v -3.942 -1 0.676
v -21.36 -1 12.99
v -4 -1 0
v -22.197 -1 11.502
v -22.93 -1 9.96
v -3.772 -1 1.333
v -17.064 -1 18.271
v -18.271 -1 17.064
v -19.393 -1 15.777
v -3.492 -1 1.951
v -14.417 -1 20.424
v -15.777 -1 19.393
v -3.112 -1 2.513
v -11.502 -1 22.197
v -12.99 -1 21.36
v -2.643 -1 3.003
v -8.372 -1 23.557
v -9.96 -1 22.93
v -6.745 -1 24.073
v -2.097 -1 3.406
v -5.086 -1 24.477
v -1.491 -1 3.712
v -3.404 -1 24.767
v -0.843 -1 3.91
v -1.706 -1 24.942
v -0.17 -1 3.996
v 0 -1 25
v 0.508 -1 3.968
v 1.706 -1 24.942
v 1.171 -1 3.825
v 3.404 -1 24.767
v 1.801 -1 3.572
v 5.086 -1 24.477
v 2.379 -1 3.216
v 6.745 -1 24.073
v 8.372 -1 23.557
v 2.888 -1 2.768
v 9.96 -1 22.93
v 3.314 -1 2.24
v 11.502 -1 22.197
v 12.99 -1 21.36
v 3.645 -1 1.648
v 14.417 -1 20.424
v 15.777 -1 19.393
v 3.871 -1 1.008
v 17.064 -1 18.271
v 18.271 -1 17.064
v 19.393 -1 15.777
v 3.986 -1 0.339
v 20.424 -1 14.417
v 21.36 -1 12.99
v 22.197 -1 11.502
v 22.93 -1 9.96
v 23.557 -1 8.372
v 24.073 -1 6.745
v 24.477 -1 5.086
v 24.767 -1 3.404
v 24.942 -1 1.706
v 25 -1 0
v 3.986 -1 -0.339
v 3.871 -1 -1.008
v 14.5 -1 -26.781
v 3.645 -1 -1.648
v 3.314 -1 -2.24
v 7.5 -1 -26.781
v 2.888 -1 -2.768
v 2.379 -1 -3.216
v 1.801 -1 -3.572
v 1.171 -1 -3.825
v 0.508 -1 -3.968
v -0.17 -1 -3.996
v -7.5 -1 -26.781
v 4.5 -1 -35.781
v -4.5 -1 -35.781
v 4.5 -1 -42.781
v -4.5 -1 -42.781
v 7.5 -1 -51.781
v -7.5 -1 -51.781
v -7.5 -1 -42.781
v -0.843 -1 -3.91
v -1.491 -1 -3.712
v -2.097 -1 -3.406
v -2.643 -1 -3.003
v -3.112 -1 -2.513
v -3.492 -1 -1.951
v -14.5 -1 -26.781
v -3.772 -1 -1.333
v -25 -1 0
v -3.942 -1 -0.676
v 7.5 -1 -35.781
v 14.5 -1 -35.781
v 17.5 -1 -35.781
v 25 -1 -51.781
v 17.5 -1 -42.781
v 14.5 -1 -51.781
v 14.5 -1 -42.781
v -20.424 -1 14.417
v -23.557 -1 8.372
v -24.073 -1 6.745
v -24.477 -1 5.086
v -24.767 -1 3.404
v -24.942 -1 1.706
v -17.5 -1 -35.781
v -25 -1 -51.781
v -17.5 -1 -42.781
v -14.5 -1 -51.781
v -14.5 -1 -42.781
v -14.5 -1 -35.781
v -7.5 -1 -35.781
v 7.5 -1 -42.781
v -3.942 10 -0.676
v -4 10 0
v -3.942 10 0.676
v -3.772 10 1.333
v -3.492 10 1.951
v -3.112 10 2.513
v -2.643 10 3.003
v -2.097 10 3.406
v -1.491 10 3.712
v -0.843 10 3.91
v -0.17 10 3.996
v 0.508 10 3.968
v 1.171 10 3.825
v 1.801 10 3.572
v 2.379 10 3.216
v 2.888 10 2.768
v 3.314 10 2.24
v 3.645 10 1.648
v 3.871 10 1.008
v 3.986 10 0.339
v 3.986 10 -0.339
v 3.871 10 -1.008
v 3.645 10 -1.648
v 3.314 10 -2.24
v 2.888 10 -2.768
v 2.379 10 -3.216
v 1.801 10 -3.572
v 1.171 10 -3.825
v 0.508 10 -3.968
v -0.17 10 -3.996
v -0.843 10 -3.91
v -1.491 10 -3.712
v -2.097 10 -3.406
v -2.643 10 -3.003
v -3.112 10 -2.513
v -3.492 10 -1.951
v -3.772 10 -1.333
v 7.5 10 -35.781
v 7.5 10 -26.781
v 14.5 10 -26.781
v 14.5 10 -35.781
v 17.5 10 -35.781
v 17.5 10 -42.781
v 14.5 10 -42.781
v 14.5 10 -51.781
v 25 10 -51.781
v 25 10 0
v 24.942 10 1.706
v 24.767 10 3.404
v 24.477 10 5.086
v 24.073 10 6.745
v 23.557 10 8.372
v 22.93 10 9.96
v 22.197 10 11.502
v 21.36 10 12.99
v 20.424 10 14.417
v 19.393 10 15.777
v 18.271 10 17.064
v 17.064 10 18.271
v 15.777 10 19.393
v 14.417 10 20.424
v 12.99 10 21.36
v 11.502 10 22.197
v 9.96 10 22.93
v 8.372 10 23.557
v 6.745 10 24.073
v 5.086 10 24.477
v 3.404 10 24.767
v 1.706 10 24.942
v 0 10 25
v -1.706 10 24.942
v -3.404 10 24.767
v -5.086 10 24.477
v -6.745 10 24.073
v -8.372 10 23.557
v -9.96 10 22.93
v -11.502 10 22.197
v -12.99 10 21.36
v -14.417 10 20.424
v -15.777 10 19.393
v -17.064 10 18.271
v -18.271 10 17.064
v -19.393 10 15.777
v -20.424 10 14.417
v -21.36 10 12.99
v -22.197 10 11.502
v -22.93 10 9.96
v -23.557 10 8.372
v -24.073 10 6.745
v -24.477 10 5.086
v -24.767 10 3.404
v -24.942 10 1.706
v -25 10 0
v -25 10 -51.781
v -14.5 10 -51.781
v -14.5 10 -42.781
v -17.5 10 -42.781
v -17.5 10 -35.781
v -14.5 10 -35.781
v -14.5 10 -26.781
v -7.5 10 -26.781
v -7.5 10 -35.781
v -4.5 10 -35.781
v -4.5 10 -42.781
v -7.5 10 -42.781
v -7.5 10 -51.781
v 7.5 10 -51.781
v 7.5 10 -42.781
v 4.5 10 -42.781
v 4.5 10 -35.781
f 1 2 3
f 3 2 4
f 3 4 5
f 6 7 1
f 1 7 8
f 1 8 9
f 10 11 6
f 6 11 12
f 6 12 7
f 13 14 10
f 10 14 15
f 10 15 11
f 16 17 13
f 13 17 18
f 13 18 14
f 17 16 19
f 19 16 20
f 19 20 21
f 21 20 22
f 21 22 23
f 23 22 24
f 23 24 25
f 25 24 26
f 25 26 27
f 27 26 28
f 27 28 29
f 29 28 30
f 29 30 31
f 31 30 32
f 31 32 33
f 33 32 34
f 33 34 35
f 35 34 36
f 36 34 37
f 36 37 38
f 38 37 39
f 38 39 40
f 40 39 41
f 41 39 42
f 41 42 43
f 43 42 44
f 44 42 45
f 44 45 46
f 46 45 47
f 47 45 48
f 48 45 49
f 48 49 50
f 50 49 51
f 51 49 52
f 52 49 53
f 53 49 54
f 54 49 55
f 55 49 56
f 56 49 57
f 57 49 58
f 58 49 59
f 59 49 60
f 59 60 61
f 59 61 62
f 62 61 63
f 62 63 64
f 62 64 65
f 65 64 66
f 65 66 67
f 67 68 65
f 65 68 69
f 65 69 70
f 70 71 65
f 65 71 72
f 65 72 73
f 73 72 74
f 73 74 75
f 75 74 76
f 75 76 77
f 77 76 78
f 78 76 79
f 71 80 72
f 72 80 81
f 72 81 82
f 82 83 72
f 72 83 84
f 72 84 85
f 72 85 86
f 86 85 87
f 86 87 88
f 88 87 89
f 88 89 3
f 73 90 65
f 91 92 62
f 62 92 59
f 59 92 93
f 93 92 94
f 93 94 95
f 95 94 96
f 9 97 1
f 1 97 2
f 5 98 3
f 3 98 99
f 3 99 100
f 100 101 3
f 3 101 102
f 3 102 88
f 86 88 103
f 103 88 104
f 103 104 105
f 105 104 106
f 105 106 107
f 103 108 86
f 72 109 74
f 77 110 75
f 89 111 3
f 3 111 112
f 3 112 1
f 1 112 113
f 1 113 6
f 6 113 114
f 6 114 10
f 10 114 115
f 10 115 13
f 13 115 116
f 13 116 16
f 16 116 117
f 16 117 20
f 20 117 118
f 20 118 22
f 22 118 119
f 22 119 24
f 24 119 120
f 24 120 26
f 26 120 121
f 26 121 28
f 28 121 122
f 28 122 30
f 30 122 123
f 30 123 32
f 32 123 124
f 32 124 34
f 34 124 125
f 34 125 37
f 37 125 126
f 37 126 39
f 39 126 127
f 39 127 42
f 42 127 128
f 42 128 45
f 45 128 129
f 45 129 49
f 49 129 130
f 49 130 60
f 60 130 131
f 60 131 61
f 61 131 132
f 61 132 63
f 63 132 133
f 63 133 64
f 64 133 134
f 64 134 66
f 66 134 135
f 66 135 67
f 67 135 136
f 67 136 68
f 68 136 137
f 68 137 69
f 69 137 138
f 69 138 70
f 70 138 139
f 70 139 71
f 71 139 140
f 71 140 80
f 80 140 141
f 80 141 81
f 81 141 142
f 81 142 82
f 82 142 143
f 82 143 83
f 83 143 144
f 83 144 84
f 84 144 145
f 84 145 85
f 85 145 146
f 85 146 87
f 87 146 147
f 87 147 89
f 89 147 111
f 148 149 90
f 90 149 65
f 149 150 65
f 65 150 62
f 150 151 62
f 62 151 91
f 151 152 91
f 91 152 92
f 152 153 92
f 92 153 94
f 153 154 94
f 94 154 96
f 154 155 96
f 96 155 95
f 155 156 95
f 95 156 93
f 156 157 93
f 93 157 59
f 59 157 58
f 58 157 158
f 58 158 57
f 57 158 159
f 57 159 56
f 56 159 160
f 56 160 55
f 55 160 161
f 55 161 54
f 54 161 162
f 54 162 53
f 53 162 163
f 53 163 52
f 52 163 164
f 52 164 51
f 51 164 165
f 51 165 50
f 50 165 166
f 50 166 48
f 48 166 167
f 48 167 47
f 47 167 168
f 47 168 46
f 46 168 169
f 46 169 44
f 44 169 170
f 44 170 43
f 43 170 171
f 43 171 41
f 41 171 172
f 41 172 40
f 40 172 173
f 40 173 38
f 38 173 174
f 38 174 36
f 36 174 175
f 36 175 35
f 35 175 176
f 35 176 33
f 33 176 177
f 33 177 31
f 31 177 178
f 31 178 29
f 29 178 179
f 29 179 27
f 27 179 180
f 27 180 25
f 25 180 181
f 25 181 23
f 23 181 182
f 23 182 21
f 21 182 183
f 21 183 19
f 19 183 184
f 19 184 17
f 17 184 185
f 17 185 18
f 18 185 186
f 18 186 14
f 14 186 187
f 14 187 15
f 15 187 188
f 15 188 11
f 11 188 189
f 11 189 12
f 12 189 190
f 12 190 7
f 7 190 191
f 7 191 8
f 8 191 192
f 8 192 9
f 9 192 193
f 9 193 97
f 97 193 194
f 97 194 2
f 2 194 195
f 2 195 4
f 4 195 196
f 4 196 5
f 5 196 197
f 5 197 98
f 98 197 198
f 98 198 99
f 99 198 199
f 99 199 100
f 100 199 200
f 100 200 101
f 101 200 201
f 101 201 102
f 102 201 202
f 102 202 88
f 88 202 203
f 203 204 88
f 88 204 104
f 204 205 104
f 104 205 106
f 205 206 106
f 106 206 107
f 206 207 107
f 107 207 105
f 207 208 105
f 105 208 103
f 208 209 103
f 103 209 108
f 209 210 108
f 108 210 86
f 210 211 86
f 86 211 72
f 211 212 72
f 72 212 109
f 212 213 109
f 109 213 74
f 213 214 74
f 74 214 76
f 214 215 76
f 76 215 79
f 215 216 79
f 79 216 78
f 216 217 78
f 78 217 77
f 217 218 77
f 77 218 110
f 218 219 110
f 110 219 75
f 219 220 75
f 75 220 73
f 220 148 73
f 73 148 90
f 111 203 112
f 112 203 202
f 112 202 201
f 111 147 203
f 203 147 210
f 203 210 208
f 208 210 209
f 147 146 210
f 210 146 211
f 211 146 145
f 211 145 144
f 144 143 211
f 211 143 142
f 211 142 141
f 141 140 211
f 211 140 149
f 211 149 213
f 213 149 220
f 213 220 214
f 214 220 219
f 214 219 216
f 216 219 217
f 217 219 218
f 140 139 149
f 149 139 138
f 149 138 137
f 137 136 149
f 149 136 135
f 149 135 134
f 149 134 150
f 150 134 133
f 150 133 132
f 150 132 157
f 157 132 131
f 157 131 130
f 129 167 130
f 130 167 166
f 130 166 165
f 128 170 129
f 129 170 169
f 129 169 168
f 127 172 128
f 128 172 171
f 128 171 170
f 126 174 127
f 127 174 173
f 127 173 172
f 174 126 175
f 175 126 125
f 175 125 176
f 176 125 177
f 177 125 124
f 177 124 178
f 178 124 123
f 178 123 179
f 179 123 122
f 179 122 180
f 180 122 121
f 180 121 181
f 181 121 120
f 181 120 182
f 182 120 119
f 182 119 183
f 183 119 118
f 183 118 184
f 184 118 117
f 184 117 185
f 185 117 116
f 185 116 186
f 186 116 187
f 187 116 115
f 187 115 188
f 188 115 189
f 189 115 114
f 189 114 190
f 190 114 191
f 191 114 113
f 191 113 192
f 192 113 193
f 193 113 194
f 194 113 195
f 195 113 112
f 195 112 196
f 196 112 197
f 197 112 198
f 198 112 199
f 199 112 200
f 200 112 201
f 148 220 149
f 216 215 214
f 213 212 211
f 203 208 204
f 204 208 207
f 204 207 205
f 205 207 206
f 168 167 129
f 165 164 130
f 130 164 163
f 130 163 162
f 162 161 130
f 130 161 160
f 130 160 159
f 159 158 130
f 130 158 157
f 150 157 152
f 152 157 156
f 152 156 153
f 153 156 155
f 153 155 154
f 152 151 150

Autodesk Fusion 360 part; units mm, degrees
sketch "Sketch1" plane through (0, 0, 0) normal (0, 1, 0) x (1, 0, 0)
  circle A0 centre (0, 0) radius 4
  circle A1 centre (0, 0) radius 25
  line L0 (0, 0) -> (-25, 0)
  line L1 (0, 0) -> (25, 0)
  line L2 (-25, 0) -> (25, 0)
  line L3 (25, 0) -> (25, 51.781)
  line L4 (25, 51.781) -> (-25, 51.781)
  line L5 (-25, 51.781) -> (-25, 0)
  line L6 (-14.5, 51.781) -> (-7.5, 51.781)
  line L7 (-7.5, 51.781) -> (-7.5, 26.781)
  line L8 (-7.5, 26.781) -> (-14.5, 26.781)
  line L9 (-14.5, 26.781) -> (-14.5, 51.781)
  line L10 (-17.5, 35.781) -> (-4.5, 35.781)
  line L11 (-4.5, 35.781) -> (-4.5, 42.781)
  line L12 (-4.5, 42.781) -> (-17.5, 42.781)
  line L13 (-17.5, 42.781) -> (-17.5, 35.781)
  line L14 (-11, 35.781) -> (-11, 26.781)
  line L15 (-17.5, 39.281) -> (-14.5, 39.281)
  line L16 (0, 51.781) -> (0, 83.1045)
  line L17 (7.5, 51.781) -> (7.5, 26.781)
  line L18 (7.5, 26.781) -> (14.5, 26.781)
  line L19 (14.5, 26.781) -> (14.5, 51.781)
  line L20 (17.5, 35.781) -> (4.5, 35.781)
  line L21 (17.5, 42.781) -> (17.5, 35.781)
  line L22 (4.5, 42.781) -> (17.5, 42.781)
  line L23 (4.5, 35.781) -> (4.5, 42.781)
  dimension "d1" = 8
  dimension "d2" = 50
  dimension "d3" = 25
  dimension "d4" = 7
  dimension "d5" = 7
  dimension "d6" = 13
  dimension "d7" = 90
  dimension "d8" = 90
  dimension "d9" = 9
  dimension "d10" = 51.781
extrude "Extrude1" add sketch "Sketch1" along normal blind 10 contours A0 A1 L0 L1 L2 | A0 A1 L0 L1 L2 | A1 L3 L4 L5 L7 L8 L9 L10 L11 L12 L13 L17 L18 L19 L20 L21 L22 L23
extrude "Extrude2" add 1 faces at (14.2683, 0, -9.6781) along direction (0, -1, 0) blind 1
